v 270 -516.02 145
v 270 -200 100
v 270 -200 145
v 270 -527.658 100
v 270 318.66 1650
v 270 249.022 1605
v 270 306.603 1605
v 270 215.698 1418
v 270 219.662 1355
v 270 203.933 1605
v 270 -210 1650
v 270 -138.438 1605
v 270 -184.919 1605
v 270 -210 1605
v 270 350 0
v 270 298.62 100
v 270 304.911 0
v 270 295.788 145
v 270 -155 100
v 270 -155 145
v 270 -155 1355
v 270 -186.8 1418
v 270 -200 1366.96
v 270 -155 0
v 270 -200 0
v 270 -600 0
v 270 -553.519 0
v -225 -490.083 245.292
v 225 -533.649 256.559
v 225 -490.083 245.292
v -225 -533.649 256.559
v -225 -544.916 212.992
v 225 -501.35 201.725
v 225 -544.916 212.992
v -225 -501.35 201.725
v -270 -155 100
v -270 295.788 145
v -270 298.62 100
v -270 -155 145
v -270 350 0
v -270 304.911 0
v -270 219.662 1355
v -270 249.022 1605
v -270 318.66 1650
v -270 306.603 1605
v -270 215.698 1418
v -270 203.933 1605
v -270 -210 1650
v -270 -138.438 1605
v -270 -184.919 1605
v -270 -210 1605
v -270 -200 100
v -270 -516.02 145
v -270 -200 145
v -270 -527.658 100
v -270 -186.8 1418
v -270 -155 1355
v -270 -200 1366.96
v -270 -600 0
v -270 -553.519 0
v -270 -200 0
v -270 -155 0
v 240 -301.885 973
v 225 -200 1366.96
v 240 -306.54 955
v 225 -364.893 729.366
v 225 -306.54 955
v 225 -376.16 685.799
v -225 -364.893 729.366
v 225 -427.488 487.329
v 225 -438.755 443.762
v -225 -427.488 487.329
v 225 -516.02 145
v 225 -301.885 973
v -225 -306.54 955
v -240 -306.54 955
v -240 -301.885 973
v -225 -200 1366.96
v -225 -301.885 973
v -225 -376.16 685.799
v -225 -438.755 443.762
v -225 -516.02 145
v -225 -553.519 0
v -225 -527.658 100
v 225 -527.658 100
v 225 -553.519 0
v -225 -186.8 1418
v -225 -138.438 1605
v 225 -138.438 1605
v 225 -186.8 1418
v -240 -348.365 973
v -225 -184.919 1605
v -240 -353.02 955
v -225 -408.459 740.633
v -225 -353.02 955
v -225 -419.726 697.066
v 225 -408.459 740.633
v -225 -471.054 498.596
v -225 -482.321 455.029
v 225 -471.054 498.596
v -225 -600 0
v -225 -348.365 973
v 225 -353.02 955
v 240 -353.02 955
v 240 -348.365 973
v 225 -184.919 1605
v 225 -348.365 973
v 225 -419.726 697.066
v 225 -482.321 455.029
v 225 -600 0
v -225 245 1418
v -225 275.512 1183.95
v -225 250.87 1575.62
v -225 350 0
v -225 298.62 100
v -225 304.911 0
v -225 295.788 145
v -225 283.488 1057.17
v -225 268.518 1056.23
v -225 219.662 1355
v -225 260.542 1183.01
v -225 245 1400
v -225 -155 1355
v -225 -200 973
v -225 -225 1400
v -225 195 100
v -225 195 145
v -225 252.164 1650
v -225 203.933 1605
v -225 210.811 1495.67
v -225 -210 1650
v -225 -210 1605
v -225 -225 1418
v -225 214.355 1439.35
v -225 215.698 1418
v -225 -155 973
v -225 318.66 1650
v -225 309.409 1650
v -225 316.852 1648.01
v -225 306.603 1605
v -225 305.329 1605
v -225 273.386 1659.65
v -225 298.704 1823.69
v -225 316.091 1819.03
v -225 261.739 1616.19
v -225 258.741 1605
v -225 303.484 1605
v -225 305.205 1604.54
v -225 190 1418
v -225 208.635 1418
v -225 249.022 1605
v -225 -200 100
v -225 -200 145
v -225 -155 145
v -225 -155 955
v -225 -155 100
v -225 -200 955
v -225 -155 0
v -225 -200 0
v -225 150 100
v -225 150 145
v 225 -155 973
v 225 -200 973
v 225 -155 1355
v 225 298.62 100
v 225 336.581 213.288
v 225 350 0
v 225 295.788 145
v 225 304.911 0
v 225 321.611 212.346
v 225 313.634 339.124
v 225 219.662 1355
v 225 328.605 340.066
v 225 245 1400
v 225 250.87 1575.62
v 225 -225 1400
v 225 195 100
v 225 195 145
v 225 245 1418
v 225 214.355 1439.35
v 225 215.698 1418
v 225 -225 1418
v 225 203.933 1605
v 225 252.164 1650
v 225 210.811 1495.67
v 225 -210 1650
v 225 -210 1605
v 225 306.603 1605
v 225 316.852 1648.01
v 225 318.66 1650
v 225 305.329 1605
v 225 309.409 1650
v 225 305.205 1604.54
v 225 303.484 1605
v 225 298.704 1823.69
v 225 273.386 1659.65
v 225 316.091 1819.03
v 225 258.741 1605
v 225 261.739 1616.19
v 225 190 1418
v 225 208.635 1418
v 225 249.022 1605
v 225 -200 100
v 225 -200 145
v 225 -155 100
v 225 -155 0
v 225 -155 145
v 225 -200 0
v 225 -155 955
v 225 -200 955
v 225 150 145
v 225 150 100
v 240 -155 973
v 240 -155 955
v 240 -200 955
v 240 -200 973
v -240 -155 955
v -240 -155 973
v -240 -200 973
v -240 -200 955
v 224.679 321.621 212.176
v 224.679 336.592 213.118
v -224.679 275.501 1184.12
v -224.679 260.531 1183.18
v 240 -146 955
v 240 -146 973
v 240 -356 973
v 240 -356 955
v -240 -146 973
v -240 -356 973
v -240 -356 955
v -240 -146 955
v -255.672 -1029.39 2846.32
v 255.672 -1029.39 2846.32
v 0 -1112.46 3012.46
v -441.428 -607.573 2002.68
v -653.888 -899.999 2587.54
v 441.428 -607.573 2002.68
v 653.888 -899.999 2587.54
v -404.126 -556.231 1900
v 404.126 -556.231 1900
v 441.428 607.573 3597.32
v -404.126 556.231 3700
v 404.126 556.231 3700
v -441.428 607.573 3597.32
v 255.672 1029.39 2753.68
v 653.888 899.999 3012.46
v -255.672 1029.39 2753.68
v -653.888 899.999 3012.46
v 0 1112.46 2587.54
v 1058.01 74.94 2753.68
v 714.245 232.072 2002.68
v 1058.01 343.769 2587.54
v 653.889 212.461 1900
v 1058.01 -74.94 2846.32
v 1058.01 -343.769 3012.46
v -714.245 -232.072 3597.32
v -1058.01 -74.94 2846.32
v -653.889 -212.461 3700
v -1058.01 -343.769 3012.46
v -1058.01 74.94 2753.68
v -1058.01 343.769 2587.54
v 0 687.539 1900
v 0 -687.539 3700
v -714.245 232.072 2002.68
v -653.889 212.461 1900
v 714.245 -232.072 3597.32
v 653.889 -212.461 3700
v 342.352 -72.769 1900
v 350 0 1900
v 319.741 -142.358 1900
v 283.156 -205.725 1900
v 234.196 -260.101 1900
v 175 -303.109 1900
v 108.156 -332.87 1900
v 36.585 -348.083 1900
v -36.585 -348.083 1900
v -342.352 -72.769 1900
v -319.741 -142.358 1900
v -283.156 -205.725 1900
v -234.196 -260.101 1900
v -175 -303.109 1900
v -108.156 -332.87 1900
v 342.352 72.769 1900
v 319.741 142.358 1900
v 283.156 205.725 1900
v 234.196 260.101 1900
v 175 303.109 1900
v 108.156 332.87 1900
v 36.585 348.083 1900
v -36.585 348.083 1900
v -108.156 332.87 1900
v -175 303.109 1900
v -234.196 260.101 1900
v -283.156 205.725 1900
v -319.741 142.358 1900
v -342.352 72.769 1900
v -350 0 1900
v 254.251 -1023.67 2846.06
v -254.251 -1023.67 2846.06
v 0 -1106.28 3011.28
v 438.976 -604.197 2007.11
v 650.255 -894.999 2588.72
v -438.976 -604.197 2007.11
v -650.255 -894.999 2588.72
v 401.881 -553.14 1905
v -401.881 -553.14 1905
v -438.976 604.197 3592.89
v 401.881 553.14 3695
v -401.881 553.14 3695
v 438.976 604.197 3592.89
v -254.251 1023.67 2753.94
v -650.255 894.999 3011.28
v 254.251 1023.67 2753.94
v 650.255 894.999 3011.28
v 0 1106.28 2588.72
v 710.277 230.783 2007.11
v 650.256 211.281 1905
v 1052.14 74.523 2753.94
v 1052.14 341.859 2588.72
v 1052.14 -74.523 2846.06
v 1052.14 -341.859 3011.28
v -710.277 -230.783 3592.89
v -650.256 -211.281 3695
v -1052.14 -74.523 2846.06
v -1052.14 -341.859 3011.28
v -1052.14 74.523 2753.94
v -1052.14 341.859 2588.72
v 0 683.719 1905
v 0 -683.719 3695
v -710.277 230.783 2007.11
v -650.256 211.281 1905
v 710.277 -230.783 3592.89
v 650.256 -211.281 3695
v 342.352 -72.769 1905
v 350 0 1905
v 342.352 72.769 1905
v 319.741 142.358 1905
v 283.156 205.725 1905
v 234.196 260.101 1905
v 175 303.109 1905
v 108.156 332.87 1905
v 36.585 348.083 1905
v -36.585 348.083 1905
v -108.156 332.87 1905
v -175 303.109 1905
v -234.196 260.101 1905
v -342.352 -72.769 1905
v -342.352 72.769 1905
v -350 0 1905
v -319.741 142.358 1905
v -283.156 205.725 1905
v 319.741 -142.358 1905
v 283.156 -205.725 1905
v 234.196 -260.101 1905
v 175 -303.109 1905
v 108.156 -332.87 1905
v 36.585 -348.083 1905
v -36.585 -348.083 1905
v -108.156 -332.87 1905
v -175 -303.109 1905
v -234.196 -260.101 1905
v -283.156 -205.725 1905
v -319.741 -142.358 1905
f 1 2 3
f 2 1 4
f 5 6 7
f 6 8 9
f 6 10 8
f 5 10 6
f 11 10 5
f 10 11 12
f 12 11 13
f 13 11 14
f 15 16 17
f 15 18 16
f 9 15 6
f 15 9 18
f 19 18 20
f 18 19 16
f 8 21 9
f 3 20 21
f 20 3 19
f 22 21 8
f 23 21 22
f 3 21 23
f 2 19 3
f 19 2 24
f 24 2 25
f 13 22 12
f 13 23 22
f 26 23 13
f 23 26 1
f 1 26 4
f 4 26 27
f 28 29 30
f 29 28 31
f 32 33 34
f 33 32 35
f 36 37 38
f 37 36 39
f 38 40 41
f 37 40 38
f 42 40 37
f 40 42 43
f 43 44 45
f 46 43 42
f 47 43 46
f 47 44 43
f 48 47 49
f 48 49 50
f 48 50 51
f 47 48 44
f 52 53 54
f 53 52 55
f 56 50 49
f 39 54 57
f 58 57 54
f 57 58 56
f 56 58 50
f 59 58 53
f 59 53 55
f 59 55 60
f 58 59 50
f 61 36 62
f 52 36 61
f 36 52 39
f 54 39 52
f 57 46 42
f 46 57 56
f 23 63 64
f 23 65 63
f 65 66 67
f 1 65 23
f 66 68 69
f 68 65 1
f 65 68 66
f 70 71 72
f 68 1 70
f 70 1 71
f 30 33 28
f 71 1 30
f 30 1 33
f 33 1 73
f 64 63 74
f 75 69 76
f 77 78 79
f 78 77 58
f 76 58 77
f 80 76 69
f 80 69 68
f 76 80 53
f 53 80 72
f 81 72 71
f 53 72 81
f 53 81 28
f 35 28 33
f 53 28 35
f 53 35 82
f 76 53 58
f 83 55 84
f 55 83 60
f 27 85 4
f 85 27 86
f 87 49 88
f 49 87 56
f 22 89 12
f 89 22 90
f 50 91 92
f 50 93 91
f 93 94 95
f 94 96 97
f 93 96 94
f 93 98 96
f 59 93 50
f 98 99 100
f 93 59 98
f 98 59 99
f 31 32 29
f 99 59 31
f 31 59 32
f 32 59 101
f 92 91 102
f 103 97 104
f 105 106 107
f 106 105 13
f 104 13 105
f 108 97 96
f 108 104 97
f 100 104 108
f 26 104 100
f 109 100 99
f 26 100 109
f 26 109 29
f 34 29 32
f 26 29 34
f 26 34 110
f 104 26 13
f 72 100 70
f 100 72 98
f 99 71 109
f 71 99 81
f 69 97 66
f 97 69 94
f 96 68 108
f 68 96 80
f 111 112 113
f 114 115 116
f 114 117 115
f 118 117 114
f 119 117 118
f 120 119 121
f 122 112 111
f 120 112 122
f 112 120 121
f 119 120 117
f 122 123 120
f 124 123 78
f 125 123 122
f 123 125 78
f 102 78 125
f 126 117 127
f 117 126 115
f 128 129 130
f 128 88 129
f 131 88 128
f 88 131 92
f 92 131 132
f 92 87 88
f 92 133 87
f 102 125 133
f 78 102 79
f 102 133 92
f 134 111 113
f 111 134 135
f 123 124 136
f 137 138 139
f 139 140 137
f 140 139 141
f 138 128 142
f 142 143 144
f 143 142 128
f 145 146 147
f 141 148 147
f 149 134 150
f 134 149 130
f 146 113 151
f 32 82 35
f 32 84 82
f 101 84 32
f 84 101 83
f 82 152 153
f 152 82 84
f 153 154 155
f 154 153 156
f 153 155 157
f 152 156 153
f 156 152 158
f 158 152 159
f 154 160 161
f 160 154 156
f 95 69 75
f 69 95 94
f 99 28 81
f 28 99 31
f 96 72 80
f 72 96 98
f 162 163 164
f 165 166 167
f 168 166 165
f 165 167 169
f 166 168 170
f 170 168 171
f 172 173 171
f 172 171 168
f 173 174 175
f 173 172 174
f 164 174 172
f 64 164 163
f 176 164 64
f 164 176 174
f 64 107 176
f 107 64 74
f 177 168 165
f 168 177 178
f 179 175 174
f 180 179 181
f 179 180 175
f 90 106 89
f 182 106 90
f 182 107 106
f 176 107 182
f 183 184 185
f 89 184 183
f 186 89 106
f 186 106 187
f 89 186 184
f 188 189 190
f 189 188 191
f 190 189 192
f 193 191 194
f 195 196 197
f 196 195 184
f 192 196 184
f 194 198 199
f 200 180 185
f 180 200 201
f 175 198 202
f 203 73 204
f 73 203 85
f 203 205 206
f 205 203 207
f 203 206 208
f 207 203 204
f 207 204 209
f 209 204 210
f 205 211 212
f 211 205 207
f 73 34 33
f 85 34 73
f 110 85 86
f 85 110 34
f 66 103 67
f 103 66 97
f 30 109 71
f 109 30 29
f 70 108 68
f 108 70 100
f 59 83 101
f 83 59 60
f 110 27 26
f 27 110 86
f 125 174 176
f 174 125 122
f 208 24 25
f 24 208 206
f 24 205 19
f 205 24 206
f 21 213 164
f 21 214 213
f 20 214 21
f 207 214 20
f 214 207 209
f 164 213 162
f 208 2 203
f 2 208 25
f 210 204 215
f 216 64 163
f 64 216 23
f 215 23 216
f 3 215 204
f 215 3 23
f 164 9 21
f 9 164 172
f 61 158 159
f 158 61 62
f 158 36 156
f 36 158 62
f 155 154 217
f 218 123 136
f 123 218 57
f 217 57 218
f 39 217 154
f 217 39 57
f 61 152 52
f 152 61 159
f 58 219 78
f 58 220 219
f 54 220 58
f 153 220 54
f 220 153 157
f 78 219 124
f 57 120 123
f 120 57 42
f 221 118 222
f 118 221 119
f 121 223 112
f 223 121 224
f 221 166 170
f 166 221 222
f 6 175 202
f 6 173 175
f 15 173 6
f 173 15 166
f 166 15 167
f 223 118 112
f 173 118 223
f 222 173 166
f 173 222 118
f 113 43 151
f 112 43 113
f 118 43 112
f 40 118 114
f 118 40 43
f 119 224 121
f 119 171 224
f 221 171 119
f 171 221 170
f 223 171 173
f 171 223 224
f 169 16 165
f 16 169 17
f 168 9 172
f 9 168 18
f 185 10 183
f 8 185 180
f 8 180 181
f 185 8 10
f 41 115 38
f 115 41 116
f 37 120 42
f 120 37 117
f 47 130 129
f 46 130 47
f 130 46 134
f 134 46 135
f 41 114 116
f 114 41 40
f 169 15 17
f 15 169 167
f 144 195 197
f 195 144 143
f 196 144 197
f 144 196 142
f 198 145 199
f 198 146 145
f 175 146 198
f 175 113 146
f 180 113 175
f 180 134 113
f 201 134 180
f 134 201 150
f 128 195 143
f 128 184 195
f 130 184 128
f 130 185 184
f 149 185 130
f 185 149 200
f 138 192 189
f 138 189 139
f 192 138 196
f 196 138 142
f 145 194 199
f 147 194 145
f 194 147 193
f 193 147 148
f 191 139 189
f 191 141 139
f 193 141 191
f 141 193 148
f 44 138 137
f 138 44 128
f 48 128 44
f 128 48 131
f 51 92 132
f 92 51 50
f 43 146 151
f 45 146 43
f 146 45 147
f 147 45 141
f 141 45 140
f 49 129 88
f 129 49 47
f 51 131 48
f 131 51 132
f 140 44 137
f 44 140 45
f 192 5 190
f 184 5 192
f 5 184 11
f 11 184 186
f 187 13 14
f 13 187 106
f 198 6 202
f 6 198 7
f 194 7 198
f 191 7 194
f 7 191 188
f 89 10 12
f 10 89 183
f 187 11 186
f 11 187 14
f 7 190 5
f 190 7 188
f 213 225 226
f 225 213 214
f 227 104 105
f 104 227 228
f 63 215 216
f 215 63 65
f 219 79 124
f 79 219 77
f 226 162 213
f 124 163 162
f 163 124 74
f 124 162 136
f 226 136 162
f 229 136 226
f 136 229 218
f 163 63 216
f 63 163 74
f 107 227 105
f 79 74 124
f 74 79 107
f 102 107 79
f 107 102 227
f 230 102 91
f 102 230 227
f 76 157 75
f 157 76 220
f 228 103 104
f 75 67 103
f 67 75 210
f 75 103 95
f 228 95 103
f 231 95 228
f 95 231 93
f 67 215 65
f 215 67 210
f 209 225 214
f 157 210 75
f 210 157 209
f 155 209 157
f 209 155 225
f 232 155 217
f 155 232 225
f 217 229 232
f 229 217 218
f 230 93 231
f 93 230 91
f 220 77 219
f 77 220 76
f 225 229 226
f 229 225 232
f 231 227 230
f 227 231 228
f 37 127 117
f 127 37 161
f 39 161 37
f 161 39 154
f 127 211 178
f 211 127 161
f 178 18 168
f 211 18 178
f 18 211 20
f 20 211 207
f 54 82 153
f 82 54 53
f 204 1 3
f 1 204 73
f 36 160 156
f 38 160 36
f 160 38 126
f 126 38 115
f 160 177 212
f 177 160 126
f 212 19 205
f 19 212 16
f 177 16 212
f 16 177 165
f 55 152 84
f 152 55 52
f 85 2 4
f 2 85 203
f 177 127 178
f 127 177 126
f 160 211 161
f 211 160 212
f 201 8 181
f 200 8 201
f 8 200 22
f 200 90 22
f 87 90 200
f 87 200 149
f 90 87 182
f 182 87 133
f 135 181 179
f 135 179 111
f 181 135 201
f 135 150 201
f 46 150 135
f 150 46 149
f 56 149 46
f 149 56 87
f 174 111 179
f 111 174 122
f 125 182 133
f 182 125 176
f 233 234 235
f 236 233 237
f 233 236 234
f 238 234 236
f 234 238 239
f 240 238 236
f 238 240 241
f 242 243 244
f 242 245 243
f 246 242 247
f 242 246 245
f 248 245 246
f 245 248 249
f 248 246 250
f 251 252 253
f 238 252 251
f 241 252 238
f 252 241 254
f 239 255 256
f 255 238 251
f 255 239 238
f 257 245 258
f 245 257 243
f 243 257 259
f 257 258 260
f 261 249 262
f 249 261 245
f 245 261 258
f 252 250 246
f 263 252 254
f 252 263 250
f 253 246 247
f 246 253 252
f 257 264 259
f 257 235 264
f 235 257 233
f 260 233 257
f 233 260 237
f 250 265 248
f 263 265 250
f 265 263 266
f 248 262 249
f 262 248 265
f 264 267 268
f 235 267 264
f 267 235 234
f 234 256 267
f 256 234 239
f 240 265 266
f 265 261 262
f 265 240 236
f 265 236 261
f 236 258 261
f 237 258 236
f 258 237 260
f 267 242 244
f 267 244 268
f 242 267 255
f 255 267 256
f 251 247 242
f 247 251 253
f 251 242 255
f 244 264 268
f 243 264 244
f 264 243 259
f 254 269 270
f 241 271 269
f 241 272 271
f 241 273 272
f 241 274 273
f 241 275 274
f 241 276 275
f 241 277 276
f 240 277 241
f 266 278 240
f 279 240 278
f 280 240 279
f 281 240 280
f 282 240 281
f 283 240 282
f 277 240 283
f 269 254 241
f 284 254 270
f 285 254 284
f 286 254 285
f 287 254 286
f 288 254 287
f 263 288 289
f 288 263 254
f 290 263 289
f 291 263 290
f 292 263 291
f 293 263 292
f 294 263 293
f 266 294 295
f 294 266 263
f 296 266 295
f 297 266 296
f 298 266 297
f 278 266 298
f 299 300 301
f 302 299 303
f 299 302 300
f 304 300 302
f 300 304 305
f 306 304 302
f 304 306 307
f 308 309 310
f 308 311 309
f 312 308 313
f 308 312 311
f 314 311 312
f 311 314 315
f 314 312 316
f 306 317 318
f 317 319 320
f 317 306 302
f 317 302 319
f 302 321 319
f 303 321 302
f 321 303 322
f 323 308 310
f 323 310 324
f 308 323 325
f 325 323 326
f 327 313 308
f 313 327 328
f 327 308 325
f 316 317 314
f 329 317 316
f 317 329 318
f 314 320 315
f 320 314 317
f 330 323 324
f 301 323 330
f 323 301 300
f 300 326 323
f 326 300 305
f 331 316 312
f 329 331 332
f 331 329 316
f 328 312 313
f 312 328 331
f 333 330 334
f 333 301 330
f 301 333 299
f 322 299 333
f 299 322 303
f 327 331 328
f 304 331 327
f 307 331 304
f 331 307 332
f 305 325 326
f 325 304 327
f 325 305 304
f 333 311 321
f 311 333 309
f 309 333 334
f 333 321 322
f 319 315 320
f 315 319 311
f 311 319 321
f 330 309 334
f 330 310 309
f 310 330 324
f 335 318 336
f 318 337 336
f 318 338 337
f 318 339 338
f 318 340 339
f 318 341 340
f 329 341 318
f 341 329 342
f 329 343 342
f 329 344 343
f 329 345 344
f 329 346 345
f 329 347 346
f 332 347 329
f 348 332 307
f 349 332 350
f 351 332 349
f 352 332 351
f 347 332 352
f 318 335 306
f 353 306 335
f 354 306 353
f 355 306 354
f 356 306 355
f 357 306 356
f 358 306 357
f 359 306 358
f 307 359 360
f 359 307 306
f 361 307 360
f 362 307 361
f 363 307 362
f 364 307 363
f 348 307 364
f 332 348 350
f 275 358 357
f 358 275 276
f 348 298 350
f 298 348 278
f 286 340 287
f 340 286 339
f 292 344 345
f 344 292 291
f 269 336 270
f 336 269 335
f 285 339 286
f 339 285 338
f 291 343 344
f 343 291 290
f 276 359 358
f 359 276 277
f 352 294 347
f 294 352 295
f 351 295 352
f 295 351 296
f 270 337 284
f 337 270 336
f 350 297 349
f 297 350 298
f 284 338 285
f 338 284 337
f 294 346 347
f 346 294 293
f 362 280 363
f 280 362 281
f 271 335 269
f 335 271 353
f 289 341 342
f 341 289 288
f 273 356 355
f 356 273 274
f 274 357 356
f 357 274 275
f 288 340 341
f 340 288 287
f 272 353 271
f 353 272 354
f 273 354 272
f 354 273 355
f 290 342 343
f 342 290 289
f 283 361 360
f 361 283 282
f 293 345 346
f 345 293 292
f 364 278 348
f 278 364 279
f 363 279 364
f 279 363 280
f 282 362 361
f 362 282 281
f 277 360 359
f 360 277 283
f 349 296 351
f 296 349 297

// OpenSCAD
// file: ../shared/highchair.scad
module highchair() {
difference(){
rotate([-14.5,0,0]){    
    union(){
        translate([225,0,0])
        cube([45,45,1700]);                     // ladder right beam
        translate([-270,0,0]){
            cube([45,45,1700]);                 // ladder left beam
            for(h=[220:250:720]) 
                translate([0,0,h]) 
                    cube([540,45,45]);          // steps
        }
}
}
translate([-300,-10,-100]) cube([600,100,100]); // cut ladder bottom excess
}

translate([225,400,0]) {
    cube([45,45,1400]);                         // right vertical beam
    translate([0,0,1355]) cube([45,420,45]);    // right higher horizontal beam
}


translate([-270,400,0]) {
    cube([45,45,1400]);                         // left vertical beam
    translate([0,0,1355]) cube([45,420,45]);    // left higher horizontal beam
}

// back
translate([0,950,0])
difference(){
rotate([3.6,0,0]){
        difference(){     
        translate([0,0,700])
            rotate([0,-28,0])
                translate([-30,-15,-535])
                    cube ([60,15,1070]);        // back crossbeam
        translate([240,-100,0])
            cube([200,200,1500]);               // cut crossbeam excess left
        translate([-440,-100,0])
            cube([200,200,1500]);               // cut crossbeam excess right
        };
        translate([225,-45,0]) {
            cube([45,45,1650]);                 // back right beam
        }
        translate([-270,-45,0]) {
            cube([45,45,1650]);                 // back right beam
        }

}
translate([-300,-80,-100]) cube([600,100,100]); // cut back bottom excess
}

translate([-240,244,955]) cube([480,210,18]);   // footrest
translate([225,40,100]) cube([45,900,45]);      // right lower horizontal
translate([-270,40,100]) cube([45,900,45]);     // left lower horizontal
translate([-270,750,100]) cube([540,45,45]);    // lower connecting 
translate([-270,375,1400]) cube([540,470,18]);  // seat

rot = -15;
translate([-225,790,1418])
rotate([rot,0,0]) {
    cube([450,18,420]);                         // backrest
    translate([0,18,210]) cube([450,45,45]);    // beam behind backrest
}

translate([-270,390,1605])
difference() {
  cube([45,530,45]);
    translate([0,530,50]) 
    rotate([rot,0,0])  
    translate([-25,0,-100])
  cube([100,100,100]);
}

translate([225,390,1605])
difference() {
  cube([45,530,45]);
    translate([0,530,50]) 
    rotate([rot,0,0])  
    translate([-25,0,-100])
  cube([100,100,100]);
}
}
highchair();
// main file
dodecahedron_height=1800;
wall_thickness=5;
hole_diameter=350;

use <../shared/highchair.scad>

module draagbaar_nergens(
    dh=dodecahedron_height,
    wt=wall_thickness,
    hd=hole_diameter,
){
    //create a dodecahedron by intersecting 6 boxes
    module dodecahedron(height) 
    {
            scale([height,height,height]) //scale by height parameter
            {
                    intersection(){
                            //make a cube
                            cube([2,2,1], center = true); 
                            intersection_for(i=[0:4]) //loop i from 0 to 4, and intersect results
                            { 
                                    //make a cube, rotate it 116.565 degrees around the X axis,
                                    //then 72*i around the Z axis
                                    rotate([0,0,72*i])
                                            rotate([116.565,0,0])
                                            cube([2,2,1], center = true); 
                            }
                    }
            }
    }

translate([0,0,2800])
difference() {
    dodecahedron(dh);
    dodecahedron(dh-2*wt);
    translate([0,0,dh/-1.1]) cylinder(dh,hd,hd);
}

translate([0,-600,0])
highchair();
}

draagbaar_nergens();
